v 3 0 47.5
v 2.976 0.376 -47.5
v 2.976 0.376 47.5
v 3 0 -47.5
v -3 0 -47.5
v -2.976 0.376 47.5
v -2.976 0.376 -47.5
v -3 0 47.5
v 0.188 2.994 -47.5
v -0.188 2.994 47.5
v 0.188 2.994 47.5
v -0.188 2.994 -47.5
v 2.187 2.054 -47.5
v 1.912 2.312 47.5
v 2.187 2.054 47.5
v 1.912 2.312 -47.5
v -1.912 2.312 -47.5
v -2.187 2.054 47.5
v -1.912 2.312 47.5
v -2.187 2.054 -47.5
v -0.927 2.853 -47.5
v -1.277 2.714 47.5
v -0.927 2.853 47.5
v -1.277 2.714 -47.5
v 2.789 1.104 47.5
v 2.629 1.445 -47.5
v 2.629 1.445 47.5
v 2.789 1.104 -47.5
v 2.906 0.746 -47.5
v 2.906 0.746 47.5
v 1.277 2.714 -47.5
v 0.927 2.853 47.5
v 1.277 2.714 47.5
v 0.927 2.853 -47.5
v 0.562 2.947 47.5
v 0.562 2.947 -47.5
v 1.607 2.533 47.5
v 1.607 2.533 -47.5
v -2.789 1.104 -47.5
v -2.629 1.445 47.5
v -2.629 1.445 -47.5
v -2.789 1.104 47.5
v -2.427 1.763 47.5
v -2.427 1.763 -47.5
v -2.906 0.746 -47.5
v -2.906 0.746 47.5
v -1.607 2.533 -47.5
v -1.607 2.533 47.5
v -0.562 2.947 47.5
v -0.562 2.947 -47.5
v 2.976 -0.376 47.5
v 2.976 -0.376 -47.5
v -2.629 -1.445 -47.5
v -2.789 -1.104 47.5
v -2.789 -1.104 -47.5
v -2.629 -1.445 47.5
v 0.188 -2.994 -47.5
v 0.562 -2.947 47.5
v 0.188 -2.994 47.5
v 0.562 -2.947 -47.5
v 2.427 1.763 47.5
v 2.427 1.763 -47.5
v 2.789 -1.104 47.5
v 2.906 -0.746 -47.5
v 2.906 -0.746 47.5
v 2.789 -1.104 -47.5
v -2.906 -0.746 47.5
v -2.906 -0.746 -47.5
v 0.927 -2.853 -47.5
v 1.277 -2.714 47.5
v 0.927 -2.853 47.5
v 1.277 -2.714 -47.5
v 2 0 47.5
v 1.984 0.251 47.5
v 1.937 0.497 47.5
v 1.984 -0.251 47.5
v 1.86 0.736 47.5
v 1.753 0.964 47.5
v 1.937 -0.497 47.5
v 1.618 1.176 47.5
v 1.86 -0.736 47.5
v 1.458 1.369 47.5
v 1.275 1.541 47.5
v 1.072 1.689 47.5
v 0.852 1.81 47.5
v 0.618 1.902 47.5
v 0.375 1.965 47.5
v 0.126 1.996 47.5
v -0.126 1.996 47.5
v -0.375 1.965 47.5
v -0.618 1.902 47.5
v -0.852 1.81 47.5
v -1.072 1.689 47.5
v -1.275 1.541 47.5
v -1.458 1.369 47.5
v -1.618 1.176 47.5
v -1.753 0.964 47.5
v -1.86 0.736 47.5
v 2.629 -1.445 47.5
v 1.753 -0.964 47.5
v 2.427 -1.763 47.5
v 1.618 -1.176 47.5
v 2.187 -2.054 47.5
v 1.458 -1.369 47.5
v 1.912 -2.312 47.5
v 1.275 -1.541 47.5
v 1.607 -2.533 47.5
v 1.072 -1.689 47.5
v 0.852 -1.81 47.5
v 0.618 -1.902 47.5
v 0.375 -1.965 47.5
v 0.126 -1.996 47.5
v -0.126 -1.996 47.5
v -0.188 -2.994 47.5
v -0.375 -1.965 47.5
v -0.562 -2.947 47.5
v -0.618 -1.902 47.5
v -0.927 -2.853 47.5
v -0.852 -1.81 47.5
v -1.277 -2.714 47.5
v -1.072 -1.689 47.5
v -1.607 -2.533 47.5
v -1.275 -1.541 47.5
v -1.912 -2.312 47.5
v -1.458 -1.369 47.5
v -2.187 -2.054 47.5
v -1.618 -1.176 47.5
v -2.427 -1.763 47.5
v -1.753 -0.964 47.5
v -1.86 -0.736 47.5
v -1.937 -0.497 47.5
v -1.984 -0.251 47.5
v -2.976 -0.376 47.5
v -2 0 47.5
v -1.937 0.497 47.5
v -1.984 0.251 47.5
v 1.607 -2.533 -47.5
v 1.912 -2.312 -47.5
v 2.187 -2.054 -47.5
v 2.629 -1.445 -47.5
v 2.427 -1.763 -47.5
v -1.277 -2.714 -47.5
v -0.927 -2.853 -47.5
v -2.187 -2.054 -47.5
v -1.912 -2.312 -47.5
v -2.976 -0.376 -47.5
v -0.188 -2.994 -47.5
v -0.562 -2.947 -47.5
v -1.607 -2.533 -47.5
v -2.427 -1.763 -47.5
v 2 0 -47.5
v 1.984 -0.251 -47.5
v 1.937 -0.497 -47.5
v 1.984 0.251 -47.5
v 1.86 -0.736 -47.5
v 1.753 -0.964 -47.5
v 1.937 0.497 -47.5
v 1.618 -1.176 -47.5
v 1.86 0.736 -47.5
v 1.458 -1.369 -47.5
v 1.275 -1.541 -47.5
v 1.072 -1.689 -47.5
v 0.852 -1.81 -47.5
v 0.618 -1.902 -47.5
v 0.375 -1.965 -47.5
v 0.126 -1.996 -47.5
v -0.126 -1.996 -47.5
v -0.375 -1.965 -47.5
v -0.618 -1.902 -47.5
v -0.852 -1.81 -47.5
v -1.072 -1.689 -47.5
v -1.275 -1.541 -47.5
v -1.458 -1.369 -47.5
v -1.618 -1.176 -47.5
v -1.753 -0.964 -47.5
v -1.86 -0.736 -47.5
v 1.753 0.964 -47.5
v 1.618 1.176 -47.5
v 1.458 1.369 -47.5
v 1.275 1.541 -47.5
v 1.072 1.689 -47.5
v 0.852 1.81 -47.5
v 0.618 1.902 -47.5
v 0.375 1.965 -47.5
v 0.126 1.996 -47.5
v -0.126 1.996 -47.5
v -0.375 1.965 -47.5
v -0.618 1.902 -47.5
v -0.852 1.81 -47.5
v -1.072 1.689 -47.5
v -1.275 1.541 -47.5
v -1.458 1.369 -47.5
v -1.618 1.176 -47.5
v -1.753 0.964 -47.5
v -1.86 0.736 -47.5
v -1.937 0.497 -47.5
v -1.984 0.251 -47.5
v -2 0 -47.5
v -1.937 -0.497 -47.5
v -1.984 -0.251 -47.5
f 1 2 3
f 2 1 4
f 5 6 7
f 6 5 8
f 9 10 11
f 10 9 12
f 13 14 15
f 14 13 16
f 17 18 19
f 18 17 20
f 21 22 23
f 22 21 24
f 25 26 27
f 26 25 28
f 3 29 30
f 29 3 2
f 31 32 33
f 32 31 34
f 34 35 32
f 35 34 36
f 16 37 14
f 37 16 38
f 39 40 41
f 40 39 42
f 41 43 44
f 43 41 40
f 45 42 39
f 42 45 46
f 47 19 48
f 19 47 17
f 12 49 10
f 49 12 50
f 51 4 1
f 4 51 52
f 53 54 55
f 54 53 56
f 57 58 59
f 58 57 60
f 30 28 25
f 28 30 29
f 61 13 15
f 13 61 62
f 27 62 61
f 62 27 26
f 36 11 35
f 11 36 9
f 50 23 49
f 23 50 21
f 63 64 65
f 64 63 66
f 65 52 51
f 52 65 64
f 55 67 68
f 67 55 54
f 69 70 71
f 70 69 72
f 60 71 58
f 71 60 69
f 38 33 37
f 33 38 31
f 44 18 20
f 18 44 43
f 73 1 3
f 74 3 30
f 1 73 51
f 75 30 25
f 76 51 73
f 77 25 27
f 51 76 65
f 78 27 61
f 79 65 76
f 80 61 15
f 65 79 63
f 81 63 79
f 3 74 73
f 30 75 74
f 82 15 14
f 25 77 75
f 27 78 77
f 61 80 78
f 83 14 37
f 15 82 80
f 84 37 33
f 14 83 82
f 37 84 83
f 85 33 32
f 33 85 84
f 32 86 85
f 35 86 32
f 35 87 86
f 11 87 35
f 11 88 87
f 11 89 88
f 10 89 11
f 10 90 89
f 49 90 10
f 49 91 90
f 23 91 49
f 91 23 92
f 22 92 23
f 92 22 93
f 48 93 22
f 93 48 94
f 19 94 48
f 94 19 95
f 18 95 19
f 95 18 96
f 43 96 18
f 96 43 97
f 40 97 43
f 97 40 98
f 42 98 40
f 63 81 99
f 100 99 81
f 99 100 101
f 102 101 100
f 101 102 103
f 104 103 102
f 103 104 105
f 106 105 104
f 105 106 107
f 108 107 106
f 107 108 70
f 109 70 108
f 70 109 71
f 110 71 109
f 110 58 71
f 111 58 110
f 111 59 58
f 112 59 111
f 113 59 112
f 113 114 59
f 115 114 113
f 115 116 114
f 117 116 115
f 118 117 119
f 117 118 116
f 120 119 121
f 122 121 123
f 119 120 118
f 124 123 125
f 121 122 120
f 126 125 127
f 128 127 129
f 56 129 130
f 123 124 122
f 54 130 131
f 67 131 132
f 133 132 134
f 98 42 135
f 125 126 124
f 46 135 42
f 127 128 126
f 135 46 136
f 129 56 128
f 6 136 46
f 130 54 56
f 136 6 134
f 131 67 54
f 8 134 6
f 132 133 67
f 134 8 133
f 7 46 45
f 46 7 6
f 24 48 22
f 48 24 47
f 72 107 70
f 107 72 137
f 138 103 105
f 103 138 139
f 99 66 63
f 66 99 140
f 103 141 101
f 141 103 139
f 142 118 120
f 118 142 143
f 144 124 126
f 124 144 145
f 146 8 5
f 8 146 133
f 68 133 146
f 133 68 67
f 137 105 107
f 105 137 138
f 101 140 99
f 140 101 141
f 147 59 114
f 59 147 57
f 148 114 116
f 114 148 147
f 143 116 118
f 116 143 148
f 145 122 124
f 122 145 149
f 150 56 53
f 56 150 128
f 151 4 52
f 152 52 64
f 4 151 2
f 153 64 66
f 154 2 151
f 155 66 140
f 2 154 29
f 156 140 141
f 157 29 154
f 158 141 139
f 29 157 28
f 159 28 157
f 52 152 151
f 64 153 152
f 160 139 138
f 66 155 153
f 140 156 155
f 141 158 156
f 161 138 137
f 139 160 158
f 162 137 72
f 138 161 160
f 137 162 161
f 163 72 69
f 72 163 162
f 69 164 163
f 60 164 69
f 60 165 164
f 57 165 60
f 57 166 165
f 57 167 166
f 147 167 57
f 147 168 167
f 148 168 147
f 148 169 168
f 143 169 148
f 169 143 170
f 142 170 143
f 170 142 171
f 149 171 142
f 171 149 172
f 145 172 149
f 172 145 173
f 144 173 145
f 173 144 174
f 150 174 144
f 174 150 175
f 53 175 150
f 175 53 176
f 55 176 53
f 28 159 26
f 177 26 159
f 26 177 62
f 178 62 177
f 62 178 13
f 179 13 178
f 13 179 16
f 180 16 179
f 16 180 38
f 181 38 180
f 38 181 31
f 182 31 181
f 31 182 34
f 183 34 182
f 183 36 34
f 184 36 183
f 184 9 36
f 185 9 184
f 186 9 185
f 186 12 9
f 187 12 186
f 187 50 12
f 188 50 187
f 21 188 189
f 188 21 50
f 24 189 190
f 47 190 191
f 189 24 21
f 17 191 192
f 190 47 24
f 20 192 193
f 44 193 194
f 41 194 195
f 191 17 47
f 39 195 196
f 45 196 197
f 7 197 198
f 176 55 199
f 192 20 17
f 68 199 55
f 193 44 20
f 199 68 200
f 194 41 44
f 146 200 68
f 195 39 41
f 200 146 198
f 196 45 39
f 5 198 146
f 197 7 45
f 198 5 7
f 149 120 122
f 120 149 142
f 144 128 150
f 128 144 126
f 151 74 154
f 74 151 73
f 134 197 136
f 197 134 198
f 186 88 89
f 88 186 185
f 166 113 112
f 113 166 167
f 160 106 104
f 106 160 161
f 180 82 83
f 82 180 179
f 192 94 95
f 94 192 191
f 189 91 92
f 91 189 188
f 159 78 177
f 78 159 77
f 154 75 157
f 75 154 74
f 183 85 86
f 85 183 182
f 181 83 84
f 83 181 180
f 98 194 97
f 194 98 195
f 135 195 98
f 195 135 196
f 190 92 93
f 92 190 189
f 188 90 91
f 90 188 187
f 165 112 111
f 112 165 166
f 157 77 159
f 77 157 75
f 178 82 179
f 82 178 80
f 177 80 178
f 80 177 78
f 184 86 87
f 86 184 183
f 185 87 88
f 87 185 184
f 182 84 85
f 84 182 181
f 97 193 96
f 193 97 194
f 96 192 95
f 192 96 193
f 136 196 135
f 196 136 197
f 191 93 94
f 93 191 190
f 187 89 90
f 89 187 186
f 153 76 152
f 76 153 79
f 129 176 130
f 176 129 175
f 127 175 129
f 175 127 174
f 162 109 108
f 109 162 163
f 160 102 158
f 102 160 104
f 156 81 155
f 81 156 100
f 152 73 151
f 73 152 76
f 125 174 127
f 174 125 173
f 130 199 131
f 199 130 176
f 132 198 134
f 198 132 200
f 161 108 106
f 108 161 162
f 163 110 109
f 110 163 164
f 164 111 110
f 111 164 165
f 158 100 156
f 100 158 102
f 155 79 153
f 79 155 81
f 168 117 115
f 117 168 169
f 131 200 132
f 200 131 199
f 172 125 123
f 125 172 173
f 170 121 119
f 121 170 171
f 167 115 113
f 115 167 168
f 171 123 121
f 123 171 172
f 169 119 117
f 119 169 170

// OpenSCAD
$fn = 50;


difference() {
	union() {
		translate(v = [0, 0, -47.5000000000]) {
			cylinder(h = 95, r = 3.0000000000);
		}
	}
	union() {
		translate(v = [0, 0, -100.0000000000]) {
			cylinder(h = 200, r = 2.0000000000);
		}
	}
}
